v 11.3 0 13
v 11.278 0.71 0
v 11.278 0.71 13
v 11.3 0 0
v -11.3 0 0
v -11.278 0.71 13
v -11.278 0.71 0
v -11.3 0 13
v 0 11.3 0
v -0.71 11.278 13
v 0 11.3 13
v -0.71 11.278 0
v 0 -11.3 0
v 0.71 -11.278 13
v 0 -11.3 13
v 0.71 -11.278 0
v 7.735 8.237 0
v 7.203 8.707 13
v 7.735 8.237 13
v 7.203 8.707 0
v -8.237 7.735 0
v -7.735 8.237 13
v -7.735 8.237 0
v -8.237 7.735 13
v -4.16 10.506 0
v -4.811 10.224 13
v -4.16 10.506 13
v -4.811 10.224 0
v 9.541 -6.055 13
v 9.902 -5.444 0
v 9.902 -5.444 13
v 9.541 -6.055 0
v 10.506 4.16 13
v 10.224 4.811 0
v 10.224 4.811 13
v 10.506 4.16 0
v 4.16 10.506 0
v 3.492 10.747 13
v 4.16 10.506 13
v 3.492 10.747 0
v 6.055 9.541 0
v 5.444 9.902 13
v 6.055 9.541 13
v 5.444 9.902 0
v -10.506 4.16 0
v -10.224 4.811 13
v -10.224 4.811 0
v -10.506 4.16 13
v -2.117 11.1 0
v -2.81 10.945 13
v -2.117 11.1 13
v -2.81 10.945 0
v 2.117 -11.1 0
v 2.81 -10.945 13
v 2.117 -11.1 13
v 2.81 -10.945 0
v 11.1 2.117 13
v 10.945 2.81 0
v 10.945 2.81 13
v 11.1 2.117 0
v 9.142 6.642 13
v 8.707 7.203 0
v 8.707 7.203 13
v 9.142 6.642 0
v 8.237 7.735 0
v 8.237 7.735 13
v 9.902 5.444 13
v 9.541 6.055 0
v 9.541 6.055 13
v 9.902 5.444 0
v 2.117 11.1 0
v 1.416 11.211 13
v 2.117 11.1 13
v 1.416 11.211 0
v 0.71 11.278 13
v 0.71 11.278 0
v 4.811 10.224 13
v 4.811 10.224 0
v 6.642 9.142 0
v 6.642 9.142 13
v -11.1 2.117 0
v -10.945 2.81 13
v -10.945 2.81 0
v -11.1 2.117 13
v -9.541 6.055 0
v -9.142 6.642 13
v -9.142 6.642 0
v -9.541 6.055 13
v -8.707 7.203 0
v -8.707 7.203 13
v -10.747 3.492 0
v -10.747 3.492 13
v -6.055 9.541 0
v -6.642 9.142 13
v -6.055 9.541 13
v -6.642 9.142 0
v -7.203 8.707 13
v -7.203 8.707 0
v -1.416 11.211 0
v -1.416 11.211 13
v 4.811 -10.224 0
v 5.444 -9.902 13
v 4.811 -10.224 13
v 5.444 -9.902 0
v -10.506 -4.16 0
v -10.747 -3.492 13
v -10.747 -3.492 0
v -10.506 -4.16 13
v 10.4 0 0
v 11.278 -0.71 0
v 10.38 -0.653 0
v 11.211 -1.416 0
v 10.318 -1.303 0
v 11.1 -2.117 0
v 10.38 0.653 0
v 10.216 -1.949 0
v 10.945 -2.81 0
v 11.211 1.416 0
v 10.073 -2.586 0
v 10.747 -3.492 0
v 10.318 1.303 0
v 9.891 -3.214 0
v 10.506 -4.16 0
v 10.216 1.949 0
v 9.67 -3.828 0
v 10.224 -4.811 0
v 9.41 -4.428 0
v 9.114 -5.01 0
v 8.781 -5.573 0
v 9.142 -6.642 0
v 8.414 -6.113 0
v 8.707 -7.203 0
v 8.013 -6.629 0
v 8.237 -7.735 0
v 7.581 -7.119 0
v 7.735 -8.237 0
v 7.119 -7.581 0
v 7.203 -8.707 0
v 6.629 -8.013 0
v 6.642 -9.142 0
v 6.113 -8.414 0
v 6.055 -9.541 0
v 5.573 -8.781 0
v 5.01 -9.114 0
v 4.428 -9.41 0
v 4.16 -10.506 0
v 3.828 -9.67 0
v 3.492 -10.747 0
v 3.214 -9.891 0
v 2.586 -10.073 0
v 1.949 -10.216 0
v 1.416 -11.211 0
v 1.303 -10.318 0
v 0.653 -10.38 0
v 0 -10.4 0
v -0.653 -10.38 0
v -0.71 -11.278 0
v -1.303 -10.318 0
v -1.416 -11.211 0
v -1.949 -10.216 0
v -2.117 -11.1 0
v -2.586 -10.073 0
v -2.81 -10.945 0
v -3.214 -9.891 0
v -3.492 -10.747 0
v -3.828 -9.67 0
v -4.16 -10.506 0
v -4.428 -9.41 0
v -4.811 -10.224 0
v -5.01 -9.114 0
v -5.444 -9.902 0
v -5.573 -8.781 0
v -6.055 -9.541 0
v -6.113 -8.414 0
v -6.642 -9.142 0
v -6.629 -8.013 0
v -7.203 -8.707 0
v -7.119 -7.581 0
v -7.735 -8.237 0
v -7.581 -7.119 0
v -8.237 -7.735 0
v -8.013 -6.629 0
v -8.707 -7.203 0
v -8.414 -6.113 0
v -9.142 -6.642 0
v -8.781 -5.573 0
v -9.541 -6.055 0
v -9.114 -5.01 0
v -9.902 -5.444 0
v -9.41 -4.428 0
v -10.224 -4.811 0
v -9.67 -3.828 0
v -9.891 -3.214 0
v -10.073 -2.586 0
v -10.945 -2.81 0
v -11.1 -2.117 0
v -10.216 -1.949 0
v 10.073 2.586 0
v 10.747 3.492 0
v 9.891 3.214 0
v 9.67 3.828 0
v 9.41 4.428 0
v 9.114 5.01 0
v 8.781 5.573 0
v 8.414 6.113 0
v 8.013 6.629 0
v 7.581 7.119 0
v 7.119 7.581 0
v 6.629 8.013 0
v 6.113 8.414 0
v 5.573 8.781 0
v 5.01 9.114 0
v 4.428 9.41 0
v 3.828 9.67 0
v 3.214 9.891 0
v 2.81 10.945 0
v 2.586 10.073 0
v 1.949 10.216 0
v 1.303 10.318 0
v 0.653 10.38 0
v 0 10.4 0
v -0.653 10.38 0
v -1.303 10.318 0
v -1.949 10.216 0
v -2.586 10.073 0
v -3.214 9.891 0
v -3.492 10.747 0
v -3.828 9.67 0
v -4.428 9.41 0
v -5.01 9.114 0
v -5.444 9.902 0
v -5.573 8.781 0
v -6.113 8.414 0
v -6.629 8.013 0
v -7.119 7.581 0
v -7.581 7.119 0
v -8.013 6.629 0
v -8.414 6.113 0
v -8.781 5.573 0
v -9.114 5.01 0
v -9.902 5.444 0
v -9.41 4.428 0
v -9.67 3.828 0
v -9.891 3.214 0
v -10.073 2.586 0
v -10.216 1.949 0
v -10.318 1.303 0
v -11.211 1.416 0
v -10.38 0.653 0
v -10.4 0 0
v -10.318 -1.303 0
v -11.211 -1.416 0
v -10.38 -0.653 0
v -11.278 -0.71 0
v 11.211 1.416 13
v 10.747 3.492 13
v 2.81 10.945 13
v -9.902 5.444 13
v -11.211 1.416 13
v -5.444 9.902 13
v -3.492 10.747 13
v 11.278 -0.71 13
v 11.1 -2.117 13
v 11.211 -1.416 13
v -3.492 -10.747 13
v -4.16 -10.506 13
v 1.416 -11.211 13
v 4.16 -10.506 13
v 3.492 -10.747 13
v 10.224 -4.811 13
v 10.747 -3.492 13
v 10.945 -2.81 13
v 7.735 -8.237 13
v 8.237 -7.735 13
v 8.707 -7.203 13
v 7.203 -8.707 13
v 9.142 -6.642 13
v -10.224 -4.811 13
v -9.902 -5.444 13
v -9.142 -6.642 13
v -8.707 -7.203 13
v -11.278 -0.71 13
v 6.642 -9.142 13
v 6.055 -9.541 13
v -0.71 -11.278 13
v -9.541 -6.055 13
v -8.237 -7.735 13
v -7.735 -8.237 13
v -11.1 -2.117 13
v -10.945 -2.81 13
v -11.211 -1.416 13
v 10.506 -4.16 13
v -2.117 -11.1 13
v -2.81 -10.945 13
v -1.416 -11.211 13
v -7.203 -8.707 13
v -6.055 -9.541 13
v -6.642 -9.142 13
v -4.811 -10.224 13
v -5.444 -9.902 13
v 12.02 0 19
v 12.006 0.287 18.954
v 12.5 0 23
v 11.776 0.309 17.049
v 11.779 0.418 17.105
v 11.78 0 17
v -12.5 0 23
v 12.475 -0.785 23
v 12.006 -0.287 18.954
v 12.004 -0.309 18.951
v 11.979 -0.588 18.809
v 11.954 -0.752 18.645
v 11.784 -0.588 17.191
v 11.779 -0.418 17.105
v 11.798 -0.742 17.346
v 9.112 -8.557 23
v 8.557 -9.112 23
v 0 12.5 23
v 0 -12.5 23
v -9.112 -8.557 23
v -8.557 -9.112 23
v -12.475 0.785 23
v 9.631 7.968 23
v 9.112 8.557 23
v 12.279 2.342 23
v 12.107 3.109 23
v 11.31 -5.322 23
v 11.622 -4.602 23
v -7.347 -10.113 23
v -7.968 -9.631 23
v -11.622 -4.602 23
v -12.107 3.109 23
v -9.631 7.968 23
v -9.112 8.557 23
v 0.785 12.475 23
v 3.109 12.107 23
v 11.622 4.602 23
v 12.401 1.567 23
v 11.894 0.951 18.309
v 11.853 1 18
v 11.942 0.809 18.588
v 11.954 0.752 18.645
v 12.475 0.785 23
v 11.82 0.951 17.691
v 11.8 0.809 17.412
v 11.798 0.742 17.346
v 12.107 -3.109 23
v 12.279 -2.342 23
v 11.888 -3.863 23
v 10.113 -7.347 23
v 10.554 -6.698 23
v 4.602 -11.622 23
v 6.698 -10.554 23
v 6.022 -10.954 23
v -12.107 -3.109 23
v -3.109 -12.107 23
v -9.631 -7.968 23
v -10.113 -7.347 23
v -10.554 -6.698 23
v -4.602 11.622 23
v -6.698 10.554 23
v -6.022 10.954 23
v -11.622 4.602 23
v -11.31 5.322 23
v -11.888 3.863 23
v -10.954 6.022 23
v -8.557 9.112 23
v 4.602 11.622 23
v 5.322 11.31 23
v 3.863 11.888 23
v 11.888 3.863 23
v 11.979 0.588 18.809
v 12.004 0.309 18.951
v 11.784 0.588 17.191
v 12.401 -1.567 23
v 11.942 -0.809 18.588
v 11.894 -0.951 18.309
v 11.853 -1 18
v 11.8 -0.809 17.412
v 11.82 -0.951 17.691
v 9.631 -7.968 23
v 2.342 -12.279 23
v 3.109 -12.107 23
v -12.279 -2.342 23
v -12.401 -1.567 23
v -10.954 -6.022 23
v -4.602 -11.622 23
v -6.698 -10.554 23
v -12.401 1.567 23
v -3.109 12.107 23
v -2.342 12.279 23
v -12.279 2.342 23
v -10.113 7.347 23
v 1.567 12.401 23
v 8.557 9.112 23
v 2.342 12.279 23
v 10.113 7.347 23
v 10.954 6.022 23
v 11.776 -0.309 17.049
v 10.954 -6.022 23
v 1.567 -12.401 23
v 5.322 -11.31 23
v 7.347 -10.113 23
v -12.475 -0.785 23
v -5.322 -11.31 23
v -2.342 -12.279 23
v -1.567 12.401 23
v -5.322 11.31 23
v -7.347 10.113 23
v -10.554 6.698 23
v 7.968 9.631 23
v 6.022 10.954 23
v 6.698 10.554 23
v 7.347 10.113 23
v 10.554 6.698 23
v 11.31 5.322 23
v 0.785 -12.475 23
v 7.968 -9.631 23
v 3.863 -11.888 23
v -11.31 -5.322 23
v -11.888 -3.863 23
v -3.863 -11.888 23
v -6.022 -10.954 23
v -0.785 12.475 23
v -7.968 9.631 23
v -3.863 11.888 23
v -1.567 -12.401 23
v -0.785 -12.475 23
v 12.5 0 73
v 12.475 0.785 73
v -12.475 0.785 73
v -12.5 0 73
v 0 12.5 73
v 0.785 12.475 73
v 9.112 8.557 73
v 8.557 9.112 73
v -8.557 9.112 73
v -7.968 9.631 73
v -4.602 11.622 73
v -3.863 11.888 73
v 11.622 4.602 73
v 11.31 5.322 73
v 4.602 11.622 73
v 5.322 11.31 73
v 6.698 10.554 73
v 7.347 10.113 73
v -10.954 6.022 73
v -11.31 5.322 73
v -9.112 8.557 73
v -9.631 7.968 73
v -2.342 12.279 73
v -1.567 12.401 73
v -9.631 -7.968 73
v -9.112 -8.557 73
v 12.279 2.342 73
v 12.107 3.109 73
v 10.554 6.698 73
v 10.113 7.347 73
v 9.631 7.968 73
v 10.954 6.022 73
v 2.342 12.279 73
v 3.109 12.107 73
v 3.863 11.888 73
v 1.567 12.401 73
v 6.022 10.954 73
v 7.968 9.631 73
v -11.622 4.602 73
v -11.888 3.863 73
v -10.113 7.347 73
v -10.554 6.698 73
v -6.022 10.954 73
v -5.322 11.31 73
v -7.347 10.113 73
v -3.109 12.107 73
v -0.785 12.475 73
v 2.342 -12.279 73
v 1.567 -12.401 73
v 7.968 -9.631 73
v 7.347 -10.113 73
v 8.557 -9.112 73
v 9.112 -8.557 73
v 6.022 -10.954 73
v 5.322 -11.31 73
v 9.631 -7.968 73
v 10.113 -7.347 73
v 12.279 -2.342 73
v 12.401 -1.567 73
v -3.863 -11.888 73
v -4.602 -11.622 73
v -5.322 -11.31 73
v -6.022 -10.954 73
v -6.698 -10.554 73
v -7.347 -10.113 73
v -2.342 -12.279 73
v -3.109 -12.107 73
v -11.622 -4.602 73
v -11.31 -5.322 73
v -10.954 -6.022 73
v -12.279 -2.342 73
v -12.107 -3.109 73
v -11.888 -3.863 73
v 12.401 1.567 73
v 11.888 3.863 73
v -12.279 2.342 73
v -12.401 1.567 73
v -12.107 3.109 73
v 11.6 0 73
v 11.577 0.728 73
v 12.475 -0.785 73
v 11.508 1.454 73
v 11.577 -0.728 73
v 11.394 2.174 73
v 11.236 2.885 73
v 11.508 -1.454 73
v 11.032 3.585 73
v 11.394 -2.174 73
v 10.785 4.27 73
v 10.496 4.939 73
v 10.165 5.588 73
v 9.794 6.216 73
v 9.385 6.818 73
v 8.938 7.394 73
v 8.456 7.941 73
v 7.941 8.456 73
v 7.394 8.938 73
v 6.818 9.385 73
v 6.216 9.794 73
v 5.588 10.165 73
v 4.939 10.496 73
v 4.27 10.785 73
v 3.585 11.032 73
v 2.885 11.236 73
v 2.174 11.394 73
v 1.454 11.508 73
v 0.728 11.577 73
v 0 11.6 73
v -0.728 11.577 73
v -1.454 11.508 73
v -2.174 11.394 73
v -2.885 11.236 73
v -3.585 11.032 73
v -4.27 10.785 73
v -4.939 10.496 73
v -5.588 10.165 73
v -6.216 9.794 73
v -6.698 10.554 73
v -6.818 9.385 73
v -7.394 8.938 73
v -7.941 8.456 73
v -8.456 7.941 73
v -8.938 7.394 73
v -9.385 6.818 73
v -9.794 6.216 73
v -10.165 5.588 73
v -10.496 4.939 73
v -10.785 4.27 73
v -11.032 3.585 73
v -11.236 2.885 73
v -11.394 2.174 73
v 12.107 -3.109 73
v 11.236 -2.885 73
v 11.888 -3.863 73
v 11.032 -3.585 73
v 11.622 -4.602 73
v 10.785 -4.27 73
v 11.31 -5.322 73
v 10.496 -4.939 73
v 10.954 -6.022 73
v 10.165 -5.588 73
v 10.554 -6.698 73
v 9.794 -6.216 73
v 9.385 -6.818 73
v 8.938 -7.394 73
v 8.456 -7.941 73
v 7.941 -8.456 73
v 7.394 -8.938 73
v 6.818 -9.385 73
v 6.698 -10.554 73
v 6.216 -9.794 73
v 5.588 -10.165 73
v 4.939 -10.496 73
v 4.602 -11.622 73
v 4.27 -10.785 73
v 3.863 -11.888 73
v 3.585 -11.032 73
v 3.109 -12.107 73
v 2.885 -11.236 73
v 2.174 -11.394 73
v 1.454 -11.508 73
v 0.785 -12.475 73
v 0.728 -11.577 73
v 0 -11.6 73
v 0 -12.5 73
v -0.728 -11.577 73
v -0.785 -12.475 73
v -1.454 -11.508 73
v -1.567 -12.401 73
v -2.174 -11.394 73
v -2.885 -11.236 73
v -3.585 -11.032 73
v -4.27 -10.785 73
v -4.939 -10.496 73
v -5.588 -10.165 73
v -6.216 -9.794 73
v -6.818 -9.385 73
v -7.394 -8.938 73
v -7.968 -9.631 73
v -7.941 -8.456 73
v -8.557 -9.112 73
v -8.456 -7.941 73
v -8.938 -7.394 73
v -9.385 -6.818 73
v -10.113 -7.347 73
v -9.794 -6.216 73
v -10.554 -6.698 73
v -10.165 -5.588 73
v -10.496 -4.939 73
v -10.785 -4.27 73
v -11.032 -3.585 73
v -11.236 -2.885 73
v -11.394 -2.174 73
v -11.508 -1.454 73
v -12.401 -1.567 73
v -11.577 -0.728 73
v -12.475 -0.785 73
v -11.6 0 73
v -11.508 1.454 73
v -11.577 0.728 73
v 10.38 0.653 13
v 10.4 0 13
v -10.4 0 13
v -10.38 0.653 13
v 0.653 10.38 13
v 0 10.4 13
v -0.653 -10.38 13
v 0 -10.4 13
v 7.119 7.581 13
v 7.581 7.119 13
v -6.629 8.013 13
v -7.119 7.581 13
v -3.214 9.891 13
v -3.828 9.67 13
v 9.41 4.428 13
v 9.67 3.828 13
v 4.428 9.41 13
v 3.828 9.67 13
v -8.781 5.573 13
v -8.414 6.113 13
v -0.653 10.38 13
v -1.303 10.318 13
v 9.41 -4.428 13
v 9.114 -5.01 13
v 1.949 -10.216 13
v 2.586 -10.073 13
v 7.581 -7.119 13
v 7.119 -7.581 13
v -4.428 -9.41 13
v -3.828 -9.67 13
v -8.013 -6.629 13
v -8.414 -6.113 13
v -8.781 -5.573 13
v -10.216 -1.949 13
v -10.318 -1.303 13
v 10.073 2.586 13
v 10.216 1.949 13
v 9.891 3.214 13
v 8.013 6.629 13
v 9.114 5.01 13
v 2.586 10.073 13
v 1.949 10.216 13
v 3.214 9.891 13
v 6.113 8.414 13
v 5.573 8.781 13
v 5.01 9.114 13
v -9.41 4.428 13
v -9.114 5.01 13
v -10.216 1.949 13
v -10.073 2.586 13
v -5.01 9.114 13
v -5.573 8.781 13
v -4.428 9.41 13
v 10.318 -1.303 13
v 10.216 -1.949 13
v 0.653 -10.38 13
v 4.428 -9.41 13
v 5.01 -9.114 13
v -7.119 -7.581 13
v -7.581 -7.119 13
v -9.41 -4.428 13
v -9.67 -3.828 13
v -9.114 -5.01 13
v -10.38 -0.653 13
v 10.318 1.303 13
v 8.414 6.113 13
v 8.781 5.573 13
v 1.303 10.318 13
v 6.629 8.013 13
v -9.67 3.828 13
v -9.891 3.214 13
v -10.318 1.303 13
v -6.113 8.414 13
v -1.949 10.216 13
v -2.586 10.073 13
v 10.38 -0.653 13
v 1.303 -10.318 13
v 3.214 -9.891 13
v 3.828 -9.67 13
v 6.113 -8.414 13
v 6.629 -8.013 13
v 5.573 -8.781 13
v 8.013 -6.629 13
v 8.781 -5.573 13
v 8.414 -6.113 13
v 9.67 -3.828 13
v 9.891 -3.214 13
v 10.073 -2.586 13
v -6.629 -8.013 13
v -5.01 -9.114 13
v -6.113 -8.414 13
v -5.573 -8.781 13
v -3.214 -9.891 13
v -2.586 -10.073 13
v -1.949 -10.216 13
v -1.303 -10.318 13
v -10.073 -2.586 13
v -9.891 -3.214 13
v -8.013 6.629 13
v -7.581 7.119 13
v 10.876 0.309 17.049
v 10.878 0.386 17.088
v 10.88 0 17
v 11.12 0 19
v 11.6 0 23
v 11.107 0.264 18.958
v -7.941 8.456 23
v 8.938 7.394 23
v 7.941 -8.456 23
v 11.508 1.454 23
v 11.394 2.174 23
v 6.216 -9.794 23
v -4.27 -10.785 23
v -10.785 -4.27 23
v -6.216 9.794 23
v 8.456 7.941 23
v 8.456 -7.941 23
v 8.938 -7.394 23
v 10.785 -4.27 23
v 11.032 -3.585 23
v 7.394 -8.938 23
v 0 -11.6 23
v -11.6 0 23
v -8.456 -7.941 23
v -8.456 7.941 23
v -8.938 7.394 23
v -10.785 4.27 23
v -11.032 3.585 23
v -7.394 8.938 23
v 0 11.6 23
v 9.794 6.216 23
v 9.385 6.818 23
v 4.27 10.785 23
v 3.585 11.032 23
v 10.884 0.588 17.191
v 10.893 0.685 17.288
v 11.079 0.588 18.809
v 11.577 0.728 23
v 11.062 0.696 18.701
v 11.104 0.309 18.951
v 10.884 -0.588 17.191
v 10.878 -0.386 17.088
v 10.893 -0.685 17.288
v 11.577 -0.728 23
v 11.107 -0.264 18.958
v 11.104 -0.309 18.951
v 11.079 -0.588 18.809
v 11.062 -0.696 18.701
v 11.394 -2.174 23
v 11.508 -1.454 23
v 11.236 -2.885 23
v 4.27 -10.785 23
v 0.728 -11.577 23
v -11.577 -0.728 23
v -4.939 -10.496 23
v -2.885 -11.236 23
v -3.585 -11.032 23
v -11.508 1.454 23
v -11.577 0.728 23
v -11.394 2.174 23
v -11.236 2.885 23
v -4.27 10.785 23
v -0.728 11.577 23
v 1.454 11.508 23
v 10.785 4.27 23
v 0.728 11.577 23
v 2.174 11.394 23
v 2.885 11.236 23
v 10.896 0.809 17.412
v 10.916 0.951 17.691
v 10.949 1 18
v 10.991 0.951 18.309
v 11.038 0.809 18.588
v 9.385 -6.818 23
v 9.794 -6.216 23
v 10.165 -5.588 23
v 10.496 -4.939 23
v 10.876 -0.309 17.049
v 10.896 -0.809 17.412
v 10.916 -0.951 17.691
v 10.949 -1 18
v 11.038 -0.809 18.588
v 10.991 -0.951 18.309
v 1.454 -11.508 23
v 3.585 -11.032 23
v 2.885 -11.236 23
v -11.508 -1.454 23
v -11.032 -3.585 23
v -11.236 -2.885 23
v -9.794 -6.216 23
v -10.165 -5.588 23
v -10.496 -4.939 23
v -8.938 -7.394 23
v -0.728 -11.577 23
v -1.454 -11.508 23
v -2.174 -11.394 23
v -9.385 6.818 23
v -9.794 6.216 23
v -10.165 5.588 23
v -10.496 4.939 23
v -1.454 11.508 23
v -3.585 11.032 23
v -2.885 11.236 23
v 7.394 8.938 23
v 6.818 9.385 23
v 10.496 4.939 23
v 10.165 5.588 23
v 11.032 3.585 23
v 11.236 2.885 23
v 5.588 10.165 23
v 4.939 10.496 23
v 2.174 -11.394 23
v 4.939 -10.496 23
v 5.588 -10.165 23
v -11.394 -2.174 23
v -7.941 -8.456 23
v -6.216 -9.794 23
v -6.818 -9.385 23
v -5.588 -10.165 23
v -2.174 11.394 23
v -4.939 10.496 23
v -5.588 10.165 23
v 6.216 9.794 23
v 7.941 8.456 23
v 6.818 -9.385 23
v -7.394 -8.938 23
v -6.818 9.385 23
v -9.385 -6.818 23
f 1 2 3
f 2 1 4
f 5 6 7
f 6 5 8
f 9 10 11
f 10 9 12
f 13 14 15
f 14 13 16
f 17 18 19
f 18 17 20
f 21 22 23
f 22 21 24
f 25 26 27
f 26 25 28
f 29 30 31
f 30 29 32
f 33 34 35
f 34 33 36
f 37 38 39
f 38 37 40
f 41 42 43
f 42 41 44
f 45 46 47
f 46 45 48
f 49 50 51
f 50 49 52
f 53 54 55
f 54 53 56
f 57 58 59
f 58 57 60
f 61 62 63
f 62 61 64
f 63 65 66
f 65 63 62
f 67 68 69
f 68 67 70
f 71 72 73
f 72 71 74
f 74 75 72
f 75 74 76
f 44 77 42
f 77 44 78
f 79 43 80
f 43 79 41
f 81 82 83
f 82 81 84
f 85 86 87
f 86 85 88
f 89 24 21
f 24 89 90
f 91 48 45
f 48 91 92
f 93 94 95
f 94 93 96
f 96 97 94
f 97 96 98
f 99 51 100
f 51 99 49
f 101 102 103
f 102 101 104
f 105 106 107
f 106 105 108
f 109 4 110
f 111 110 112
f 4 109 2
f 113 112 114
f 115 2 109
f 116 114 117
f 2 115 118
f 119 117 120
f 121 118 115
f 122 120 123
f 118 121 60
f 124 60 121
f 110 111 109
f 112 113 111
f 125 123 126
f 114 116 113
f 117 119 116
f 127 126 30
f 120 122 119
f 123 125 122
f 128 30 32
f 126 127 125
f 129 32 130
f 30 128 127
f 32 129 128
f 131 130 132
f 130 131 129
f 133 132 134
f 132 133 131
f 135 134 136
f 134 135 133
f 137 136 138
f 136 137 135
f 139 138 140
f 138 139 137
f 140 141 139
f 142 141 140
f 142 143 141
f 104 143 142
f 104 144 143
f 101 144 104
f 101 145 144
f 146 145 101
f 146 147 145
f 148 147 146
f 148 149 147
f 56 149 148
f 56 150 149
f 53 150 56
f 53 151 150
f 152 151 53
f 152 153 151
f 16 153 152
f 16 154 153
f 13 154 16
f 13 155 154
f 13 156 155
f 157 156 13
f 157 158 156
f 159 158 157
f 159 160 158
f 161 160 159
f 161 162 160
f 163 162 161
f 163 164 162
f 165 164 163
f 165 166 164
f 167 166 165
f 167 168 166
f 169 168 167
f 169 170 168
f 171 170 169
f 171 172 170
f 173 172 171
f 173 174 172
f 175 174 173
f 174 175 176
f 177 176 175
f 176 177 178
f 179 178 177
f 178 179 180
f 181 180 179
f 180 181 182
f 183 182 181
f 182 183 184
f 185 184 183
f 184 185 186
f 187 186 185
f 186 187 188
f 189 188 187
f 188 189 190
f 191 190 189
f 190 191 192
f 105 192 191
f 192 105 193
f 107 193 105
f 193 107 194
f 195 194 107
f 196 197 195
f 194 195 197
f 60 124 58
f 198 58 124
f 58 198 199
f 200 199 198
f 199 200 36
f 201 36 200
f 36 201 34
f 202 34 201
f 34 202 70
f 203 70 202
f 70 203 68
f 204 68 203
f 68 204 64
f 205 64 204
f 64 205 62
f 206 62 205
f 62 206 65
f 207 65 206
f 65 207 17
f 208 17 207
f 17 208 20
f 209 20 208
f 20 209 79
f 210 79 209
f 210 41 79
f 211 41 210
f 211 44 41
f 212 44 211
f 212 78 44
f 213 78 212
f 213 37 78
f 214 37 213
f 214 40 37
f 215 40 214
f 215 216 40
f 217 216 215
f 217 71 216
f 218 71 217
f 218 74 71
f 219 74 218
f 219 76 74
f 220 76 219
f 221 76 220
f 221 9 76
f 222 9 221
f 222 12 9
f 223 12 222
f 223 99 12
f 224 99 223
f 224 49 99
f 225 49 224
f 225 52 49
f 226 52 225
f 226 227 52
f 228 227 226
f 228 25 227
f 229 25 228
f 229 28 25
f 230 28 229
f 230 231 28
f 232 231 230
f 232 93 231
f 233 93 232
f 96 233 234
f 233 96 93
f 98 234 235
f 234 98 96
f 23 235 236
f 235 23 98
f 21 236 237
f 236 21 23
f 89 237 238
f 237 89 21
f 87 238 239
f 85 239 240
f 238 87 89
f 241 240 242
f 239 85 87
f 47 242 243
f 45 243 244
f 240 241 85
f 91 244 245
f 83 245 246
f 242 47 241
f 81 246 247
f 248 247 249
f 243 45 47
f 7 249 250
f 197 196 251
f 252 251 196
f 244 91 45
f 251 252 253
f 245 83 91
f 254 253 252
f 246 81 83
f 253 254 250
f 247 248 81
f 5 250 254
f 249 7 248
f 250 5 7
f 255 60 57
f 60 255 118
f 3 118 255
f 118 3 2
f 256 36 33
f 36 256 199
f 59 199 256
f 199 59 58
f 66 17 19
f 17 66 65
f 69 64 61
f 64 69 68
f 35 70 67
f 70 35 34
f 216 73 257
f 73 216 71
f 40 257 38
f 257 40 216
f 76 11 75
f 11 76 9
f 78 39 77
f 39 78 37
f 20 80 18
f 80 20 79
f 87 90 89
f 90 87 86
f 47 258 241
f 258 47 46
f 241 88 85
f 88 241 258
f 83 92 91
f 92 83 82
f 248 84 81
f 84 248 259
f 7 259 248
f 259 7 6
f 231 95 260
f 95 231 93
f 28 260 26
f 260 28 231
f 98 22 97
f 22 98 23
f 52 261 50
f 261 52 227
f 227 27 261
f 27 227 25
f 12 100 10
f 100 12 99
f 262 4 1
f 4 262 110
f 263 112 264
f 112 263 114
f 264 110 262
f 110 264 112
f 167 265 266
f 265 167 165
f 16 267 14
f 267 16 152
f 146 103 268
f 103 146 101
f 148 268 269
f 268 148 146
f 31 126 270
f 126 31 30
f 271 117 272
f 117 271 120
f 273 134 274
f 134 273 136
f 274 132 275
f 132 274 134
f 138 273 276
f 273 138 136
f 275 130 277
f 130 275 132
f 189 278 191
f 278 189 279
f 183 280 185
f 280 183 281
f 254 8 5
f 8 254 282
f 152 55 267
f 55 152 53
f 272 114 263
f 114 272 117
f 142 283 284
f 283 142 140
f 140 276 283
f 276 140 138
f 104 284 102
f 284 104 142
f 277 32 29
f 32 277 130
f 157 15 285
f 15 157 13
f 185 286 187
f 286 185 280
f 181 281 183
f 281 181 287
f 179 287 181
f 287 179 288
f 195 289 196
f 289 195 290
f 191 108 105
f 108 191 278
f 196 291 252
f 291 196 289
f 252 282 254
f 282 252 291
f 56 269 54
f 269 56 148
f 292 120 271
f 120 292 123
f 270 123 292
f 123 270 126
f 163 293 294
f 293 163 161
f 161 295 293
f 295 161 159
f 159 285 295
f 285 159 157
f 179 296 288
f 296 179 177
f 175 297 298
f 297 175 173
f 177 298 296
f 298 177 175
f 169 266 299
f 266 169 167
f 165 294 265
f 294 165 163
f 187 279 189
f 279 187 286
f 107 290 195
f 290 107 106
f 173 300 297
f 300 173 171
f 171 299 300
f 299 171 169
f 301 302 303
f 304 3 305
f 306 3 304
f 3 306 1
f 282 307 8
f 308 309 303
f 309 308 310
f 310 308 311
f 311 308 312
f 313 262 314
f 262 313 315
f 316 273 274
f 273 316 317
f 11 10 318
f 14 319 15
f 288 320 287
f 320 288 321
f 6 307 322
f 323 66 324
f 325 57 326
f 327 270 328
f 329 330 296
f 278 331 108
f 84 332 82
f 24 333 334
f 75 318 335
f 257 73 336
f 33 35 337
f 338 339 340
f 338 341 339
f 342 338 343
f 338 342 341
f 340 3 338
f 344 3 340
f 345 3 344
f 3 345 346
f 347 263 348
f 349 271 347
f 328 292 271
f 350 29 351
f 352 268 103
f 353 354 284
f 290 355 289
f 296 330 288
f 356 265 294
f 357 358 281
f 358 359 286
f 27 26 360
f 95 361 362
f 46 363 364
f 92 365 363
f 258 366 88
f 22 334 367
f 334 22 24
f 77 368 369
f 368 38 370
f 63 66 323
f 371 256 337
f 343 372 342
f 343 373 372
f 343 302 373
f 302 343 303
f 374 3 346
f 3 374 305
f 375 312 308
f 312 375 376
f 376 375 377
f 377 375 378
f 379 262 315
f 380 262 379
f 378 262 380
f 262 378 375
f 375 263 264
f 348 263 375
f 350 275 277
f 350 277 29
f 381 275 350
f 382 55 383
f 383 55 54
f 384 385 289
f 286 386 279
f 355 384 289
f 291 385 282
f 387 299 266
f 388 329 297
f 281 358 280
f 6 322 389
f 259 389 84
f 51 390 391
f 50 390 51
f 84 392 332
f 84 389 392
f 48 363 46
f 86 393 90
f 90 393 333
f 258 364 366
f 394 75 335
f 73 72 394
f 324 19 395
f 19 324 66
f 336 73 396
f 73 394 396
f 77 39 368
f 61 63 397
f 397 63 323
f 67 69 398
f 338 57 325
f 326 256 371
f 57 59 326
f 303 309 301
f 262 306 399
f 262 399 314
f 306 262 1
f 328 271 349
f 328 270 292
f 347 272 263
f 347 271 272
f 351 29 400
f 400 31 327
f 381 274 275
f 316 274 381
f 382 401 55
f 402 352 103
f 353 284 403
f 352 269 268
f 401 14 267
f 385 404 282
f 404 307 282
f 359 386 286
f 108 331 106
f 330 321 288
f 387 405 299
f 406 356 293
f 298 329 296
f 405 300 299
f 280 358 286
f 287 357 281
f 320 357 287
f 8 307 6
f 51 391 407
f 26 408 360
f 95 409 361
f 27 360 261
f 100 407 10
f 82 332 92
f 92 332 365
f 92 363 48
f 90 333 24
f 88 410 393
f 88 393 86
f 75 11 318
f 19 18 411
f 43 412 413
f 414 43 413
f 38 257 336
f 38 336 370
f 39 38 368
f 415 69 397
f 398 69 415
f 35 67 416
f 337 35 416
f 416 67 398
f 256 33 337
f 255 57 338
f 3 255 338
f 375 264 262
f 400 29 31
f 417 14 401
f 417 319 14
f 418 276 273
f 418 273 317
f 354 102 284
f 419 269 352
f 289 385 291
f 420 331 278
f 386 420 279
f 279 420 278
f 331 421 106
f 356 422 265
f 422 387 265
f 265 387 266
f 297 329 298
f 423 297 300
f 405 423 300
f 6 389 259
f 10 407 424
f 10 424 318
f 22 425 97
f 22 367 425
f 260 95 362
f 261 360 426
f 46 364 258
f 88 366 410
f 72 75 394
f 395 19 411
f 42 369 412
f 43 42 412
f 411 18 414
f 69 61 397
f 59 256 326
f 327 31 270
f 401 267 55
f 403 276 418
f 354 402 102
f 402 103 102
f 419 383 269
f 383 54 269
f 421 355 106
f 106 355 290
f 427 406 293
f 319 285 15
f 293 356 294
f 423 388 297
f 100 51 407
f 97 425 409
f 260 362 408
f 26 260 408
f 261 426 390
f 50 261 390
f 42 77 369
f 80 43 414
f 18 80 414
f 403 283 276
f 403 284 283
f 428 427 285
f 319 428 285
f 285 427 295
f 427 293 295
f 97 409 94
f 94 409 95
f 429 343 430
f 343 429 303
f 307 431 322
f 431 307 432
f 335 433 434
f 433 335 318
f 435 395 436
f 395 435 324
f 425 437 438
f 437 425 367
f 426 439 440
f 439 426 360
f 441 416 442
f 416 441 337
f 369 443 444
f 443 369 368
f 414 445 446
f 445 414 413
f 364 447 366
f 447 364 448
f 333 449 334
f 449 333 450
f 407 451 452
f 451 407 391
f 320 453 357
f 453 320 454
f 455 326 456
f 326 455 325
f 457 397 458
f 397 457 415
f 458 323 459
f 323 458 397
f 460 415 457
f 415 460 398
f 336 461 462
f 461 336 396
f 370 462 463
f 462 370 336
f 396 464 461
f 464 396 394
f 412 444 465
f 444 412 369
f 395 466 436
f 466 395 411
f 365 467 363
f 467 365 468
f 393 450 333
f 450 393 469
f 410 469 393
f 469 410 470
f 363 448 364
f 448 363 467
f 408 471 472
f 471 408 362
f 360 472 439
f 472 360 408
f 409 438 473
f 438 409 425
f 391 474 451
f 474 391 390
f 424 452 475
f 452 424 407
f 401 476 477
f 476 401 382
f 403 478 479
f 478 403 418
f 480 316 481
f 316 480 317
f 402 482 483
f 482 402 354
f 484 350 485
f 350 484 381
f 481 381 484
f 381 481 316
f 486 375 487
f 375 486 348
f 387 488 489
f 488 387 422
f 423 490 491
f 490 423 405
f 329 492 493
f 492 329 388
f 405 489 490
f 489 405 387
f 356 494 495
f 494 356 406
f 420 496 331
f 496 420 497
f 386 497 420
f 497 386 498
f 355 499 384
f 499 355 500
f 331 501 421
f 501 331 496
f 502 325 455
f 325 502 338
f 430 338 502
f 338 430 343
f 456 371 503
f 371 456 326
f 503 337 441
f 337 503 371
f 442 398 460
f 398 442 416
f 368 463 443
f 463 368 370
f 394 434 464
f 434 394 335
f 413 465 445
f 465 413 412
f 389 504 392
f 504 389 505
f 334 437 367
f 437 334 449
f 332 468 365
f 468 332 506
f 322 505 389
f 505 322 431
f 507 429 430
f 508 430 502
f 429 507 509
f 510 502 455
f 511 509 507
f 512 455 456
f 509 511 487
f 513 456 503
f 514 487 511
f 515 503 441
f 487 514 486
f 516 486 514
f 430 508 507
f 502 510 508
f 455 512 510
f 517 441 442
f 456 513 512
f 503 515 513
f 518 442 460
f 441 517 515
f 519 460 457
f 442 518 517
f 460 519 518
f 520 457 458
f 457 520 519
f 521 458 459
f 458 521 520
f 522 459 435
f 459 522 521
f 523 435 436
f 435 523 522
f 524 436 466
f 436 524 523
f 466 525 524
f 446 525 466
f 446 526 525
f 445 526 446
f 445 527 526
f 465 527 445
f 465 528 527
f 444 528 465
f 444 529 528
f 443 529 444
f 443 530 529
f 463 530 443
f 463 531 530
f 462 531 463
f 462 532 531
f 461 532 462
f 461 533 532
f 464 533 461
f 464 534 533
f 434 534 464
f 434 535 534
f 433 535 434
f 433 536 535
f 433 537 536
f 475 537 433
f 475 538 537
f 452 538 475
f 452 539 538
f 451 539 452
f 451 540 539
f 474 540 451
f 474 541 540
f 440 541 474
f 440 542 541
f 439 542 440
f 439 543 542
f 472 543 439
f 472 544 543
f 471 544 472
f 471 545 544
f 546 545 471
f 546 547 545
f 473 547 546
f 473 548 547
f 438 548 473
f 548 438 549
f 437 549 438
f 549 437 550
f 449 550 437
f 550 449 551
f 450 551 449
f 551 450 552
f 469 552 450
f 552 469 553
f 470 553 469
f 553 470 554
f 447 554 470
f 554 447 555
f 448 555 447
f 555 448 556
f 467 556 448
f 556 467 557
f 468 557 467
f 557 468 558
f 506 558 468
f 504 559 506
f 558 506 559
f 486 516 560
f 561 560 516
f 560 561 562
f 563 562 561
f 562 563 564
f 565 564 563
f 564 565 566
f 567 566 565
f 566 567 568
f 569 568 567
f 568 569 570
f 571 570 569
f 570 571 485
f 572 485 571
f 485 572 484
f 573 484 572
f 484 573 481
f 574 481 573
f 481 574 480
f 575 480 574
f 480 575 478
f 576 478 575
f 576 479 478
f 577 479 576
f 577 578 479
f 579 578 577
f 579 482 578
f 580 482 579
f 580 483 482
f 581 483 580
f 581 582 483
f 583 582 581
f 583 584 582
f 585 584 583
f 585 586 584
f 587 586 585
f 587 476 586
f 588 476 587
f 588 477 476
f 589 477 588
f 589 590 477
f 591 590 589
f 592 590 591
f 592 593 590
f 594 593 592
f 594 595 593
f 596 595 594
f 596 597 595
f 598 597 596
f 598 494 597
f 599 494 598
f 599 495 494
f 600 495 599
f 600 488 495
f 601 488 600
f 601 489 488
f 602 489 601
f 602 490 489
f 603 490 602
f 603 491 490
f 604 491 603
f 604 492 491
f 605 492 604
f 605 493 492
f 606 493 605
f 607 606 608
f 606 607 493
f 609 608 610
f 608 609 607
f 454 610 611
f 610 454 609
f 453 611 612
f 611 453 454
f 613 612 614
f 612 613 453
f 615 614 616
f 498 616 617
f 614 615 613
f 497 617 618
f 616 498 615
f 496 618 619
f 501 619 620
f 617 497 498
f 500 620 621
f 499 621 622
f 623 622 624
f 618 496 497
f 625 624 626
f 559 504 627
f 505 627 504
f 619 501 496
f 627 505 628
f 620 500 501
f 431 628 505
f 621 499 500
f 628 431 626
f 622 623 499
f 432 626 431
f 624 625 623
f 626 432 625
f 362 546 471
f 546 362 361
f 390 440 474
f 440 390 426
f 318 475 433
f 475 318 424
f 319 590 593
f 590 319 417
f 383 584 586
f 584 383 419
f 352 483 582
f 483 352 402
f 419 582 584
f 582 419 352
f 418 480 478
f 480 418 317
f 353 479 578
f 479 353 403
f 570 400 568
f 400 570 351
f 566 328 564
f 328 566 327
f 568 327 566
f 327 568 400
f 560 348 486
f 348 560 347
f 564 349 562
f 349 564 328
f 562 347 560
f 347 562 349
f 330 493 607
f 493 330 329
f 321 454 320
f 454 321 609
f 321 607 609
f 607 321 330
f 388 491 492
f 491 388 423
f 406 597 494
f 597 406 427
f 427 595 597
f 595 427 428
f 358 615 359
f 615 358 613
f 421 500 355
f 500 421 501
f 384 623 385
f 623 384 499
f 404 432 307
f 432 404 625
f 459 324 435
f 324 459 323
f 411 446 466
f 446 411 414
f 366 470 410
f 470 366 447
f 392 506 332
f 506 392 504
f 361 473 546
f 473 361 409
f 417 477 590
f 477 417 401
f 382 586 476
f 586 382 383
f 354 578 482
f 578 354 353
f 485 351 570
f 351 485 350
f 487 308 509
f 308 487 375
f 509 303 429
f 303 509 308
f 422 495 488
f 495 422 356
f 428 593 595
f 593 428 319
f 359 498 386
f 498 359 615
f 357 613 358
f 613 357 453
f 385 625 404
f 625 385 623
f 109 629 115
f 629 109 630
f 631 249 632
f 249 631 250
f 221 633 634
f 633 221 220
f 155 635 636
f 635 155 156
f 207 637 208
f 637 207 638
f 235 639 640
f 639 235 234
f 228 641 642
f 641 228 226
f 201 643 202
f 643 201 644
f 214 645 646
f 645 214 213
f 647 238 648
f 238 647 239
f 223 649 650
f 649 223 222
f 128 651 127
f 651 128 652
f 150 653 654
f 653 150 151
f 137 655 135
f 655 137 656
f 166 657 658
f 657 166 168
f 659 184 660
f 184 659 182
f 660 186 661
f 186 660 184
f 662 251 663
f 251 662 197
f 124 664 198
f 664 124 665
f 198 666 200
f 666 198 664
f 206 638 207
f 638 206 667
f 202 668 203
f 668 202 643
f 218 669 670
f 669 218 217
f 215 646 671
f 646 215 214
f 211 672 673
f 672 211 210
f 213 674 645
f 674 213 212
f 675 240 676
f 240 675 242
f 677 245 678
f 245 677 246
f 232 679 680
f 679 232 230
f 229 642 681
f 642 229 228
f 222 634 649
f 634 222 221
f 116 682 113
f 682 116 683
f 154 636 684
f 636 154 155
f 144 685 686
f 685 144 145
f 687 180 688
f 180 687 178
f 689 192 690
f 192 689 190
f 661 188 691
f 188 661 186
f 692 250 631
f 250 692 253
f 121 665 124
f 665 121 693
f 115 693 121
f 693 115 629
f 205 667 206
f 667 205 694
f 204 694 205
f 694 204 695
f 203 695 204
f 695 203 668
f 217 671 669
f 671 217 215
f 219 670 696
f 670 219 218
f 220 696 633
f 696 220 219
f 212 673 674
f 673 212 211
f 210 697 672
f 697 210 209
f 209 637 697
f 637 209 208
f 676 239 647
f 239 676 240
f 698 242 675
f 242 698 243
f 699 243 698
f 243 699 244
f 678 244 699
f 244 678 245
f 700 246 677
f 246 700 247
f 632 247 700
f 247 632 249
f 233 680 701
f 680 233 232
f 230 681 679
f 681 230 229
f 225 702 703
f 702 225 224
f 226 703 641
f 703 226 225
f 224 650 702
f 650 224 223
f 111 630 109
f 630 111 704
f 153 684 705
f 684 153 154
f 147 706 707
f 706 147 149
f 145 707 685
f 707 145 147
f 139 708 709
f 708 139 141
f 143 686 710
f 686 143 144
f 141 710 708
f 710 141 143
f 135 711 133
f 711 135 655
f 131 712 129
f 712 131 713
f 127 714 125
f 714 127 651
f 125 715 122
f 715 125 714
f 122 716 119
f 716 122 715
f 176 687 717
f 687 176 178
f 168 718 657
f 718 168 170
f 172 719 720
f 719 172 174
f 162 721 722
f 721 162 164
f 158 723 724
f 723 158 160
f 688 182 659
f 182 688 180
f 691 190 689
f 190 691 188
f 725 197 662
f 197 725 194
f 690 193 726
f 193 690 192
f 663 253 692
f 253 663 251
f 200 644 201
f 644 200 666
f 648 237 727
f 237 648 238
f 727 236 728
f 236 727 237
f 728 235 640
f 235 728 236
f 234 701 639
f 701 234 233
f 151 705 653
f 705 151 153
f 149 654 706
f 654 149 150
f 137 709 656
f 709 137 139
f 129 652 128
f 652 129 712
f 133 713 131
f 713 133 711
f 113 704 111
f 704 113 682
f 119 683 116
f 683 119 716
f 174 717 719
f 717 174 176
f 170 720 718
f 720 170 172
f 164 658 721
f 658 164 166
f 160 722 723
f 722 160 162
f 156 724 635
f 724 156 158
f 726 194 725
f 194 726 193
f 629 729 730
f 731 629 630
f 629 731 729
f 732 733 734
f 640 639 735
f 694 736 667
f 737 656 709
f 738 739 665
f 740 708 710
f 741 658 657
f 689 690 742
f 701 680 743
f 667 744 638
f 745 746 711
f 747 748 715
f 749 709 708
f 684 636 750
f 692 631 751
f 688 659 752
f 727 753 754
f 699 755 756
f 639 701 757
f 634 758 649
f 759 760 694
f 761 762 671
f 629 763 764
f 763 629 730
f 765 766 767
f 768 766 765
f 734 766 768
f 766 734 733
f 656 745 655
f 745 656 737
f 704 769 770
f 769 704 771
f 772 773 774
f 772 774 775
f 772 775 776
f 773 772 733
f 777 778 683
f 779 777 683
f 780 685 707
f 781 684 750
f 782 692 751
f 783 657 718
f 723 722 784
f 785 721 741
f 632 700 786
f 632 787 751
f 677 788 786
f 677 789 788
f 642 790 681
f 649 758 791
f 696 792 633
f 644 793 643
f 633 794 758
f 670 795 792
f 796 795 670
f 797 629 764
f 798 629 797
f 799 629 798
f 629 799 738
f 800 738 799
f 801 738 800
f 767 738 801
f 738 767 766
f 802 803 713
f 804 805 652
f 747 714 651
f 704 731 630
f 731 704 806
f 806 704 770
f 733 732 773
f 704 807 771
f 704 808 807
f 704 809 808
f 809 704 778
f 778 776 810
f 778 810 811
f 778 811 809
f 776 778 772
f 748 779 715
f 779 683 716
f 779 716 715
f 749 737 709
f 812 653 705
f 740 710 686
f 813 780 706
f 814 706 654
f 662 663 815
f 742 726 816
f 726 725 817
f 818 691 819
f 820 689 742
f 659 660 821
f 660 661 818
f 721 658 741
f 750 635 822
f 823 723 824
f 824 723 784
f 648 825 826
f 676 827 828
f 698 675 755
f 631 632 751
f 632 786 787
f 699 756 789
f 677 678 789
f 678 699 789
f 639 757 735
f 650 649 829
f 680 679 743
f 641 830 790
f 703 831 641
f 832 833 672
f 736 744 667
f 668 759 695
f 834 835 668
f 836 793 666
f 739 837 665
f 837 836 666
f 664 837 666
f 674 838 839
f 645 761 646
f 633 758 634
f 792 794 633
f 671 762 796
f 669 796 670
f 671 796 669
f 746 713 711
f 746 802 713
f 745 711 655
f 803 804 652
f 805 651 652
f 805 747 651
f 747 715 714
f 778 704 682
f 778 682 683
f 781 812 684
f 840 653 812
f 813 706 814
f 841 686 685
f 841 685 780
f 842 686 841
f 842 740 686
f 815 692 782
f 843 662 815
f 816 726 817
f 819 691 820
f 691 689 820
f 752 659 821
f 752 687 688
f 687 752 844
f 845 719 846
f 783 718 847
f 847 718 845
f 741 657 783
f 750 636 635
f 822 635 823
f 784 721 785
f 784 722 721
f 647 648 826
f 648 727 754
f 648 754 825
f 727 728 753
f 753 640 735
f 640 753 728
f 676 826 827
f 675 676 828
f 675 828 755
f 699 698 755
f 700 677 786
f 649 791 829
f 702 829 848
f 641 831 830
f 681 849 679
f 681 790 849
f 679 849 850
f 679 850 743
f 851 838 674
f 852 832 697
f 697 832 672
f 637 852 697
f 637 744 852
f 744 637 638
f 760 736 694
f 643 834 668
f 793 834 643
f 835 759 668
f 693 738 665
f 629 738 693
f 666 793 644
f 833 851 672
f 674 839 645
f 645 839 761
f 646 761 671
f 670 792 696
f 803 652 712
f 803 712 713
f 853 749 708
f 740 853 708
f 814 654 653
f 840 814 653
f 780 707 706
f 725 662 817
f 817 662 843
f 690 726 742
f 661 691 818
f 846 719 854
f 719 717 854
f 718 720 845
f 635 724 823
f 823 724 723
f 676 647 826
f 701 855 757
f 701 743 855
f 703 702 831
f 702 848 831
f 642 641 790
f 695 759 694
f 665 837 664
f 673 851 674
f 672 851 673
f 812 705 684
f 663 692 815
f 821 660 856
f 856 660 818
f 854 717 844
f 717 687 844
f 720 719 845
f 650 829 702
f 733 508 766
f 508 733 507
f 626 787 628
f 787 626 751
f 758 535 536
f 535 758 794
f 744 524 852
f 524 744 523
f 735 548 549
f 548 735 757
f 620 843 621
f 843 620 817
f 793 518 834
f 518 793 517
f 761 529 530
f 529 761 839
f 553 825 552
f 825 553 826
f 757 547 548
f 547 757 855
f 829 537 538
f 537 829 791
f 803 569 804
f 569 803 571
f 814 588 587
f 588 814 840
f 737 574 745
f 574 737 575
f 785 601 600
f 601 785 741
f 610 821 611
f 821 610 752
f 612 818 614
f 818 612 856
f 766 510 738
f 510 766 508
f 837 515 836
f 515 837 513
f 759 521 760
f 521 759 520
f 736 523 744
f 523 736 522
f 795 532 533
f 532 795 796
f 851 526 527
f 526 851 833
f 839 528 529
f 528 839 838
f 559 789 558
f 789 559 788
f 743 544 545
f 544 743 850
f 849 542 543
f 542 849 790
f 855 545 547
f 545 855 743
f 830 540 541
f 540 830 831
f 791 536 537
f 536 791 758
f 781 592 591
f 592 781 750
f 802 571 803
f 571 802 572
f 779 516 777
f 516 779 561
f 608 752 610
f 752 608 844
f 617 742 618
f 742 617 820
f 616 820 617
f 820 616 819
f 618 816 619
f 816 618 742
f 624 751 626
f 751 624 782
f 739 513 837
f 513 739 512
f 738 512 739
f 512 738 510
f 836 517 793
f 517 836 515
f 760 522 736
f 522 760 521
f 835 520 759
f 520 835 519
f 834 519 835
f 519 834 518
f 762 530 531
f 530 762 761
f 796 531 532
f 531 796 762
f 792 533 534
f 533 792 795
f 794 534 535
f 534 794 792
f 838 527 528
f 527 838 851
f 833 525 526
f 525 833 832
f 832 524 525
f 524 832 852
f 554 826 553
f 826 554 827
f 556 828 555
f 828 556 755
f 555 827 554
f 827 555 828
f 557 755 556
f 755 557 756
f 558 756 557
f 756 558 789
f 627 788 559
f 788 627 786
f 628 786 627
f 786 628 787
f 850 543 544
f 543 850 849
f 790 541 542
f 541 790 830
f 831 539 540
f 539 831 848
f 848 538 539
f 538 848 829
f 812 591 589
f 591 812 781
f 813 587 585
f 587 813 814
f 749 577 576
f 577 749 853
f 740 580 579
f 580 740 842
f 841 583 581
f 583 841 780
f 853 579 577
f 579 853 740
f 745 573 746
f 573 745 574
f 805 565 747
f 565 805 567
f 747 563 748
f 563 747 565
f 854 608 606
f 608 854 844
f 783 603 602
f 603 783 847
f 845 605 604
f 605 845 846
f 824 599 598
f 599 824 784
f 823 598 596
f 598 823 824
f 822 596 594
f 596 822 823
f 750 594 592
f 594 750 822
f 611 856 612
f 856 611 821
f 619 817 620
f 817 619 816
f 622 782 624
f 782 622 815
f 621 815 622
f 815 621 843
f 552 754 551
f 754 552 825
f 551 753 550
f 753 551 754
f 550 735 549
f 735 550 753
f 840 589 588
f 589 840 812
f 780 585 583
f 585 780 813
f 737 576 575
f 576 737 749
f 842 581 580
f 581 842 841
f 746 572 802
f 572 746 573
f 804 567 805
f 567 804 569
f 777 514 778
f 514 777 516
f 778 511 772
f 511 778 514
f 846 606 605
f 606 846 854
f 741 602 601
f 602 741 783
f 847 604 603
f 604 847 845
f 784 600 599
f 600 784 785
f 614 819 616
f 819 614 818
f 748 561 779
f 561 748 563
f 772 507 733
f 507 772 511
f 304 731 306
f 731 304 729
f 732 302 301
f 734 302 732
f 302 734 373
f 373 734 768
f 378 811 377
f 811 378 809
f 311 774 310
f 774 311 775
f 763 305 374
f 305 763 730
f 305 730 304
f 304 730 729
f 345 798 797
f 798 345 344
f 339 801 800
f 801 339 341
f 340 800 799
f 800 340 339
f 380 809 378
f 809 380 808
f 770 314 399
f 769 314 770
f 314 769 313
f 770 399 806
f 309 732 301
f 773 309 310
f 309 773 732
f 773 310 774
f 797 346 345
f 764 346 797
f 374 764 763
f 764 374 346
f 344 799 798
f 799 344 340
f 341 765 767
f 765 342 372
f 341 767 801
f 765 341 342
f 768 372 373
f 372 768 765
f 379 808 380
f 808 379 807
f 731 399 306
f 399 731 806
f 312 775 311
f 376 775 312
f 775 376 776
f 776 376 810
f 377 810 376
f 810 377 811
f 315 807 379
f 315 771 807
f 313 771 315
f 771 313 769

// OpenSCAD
// file: ../config.scad
//rocket
wall_thickness = 0.9;
motorwall_thickness = 2;
module_height = 140;

//liftoff_ring
liftoff_ring = true;
ring_diameter = 4;
ring_thickness = 1;
ring_height = 10;
ring_translate_angle = 11.5;

//stabilizer
stabilizer_thickness = 0.8;
stabilizer_count = 3;
stabilizer_height = 60;
stabilizer_width = 30;
stabilizer_angle = 50;

//motor
motor_diameter = 18.6;
motor_height = 70;

//joint
joint_height = 13;
joint_space = 0.3;
joint_thickness = 1;
joint_transition_height = 2;

//container
container_diameter = 25;
container_height = 50;
container_transition = 10;
hole_diameter = 2;

outer_diameter = motor_diameter+motorwall_thickness*2;
// main file
include <../config.scad>

module container() {
    difference() {
        union() {
            cylinder(d=outer_diameter, h=joint_height, $fn=100);

            translate([0, 0, joint_height])
                cylinder(d1=outer_diameter, d2=container_diameter, h=container_transition, $fn=100);

            translate([0, 0, joint_height+container_transition])
                cylinder(d=container_diameter, h=container_height, $fn=100);
        }

        cylinder(d=outer_diameter-wall_thickness*2, h=joint_height, $fn=100);

        translate([0, 0, joint_height])
            cylinder(d1=outer_diameter-wall_thickness*2, d2=container_diameter-wall_thickness*2, h=container_transition, $fn=100);

        translate([0, 0, joint_height+container_transition])
            cylinder(d=container_diameter-wall_thickness*2, h=container_height, $fn=100);

        translate([0, 0, joint_height+container_transition/2])
            rotate([0, 90, 0])
                #cylinder(d=hole_diameter, h=container_diameter, $fn=20);
    }
}

container();
